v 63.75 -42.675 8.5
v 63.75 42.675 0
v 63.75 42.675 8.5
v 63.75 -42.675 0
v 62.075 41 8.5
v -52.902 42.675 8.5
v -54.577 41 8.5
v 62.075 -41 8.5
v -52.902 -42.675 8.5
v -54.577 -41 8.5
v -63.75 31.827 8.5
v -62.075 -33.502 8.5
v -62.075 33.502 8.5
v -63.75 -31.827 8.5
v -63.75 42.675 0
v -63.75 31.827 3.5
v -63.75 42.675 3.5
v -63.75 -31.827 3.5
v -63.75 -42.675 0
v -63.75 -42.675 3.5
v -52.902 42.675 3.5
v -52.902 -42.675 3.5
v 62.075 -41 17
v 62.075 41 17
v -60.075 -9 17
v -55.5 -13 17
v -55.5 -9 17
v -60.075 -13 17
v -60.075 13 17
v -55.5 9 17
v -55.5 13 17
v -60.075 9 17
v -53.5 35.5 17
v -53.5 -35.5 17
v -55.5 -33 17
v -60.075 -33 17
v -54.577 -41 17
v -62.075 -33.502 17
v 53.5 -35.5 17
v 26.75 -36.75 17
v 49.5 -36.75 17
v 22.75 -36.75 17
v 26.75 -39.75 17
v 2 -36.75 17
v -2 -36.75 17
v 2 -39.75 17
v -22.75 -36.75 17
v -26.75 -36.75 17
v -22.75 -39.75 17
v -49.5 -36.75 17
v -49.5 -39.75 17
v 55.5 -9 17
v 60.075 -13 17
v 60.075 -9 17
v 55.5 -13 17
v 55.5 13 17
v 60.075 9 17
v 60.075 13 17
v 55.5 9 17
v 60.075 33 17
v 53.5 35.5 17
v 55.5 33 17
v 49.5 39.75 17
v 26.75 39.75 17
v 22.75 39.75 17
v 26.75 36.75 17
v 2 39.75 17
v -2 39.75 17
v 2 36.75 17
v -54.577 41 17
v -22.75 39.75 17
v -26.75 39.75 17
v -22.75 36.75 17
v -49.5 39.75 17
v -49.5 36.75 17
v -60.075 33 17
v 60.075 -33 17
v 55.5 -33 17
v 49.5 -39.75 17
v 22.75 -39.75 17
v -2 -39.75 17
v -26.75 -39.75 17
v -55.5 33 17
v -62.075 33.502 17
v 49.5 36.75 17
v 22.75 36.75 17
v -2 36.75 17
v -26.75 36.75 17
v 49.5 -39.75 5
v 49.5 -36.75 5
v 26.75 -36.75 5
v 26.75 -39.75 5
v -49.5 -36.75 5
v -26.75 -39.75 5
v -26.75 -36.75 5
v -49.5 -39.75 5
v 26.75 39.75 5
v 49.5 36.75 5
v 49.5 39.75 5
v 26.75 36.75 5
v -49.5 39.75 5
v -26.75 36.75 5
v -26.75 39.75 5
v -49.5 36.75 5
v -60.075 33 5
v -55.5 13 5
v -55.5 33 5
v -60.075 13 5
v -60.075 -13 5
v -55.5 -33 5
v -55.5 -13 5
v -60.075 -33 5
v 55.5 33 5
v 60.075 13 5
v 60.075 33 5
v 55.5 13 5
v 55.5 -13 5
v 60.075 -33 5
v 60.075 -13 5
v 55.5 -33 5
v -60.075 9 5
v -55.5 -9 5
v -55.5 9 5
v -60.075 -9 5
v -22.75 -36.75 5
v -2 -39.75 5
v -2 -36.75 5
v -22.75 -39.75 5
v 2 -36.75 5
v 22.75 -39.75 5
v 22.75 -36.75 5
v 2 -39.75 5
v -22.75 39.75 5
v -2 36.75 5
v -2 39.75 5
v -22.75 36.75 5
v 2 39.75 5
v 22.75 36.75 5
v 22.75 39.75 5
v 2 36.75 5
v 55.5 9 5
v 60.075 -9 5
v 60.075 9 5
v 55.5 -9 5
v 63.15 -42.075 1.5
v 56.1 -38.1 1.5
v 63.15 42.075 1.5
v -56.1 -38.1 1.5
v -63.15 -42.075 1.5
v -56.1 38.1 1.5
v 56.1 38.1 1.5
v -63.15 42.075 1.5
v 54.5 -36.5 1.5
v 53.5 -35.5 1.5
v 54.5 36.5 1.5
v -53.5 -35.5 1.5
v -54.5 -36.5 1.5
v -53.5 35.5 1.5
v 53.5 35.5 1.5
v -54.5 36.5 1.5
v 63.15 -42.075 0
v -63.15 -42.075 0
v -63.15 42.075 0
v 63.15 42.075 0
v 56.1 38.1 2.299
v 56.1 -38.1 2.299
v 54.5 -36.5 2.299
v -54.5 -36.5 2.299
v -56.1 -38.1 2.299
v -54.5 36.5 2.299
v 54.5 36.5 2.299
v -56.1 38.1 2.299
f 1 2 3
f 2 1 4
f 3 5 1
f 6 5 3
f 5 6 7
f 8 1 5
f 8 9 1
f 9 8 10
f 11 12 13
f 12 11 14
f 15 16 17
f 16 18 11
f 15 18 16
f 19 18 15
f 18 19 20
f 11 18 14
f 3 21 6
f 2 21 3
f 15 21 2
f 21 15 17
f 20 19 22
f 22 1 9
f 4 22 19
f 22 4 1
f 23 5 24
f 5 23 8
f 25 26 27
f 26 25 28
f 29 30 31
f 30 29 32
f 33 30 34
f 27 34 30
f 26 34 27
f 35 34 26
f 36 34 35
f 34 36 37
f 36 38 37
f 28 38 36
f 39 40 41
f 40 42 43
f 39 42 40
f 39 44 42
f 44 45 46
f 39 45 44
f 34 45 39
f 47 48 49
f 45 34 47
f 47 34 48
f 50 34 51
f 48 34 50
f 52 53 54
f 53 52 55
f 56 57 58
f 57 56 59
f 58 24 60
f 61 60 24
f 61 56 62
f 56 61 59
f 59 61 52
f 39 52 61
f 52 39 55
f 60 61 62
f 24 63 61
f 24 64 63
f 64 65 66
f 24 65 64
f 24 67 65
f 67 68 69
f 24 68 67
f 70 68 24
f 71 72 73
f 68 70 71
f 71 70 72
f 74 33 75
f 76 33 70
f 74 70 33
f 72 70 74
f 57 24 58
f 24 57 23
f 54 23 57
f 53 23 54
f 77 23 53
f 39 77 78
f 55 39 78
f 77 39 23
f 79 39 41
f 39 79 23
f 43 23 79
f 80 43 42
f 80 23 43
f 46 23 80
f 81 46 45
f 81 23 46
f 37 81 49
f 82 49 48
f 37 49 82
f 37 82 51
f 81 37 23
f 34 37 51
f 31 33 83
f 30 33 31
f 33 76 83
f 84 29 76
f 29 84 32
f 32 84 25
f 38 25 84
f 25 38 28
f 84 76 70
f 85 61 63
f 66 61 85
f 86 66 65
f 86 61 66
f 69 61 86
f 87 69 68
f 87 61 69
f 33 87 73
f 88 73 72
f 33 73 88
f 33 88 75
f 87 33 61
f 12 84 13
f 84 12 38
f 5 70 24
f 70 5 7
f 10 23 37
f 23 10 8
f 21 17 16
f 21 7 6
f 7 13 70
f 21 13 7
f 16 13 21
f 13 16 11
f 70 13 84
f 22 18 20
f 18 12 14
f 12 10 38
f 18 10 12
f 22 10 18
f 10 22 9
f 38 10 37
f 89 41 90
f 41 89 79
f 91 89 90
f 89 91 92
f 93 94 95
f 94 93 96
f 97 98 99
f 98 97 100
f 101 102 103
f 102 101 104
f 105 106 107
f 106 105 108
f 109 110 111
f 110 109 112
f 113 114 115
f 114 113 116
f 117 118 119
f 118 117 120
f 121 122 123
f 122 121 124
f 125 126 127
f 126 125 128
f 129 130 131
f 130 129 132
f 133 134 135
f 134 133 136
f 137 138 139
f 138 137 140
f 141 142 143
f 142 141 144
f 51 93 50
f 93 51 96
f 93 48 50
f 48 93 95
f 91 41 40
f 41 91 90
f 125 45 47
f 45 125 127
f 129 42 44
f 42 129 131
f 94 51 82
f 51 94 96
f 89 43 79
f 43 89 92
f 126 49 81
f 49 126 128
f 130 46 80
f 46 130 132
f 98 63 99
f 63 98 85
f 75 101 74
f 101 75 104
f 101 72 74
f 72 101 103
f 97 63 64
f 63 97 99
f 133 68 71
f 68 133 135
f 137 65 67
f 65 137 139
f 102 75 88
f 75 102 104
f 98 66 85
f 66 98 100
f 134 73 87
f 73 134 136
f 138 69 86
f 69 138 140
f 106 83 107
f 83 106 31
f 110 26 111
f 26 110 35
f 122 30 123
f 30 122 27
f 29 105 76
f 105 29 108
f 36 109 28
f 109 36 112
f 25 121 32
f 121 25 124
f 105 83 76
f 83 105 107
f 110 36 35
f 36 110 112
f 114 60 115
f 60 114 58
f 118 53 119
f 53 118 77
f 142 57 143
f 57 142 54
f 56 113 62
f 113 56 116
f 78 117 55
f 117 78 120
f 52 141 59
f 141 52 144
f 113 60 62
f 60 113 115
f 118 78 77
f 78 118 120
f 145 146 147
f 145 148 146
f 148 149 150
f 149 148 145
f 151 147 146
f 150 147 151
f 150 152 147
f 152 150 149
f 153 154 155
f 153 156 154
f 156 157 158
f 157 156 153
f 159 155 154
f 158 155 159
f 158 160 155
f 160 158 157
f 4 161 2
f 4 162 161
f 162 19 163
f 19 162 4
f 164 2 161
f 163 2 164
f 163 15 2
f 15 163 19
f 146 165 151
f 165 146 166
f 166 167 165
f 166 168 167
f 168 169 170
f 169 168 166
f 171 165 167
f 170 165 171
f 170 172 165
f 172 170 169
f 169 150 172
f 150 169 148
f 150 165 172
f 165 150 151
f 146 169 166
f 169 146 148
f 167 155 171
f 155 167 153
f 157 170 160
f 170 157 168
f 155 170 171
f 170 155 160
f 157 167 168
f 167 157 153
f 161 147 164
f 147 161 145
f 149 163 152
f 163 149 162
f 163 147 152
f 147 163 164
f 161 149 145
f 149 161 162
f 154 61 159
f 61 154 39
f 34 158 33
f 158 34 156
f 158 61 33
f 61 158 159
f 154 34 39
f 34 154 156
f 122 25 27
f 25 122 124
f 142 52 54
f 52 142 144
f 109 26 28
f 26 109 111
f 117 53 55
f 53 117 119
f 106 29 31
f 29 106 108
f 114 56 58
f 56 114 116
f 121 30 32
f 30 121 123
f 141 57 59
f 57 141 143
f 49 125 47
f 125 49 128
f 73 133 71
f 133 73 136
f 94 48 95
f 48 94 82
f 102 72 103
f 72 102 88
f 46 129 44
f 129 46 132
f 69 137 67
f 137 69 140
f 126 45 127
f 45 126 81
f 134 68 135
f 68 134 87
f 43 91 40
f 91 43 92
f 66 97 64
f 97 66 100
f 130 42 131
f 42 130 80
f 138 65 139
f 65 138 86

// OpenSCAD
// Generated by SolidPython 1.1.3 on 2025-09-12 14:58:33


union() {
	difference() {
		union() {
			translate(v = [0, 22.0000000000, 0]) {
				translate(v = [0, -33.0000000000, 11.0000000000]) {
					cube(center = true, size = [124.1500000000, 4, 12]);
				}
			}
			translate(v = [0, 44.0000000000, 0]) {
				translate(v = [0, -33.0000000000, 11.0000000000]) {
					cube(center = true, size = [124.1500000000, 4, 12]);
				}
			}
			translate(v = [24.7500000000, 0, 0]) {
				translate(v = [-49.5000000000, 0, 11.0000000000]) {
					cube(center = true, size = [4, 82, 12]);
				}
			}
			translate(v = [49.5000000000, 0, 0]) {
				translate(v = [-49.5000000000, 0, 11.0000000000]) {
					cube(center = true, size = [4, 82, 12]);
				}
			}
			translate(v = [74.2500000000, 0, 0]) {
				translate(v = [-49.5000000000, 0, 11.0000000000]) {
					cube(center = true, size = [4, 82, 12]);
				}
			}
			difference() {
				difference() {
					difference() {
						difference() {
							difference() {
								union() {
									difference() {
										union() {
											translate(v = [0, 0, 4.2500000000]) {
												cube(center = true, size = [127.5000000000, 85.3500000000, 8.5000000000]);
											}
											translate(v = [0, 0, 12.7500000000]) {
												cube(center = true, size = [124.1500000000, 82, 8.5000000000]);
											}
										}
										translate(v = [0, 0, 0.7500000000]) {
											cube(center = true, size = [127.5000000000, 85.3500000000, 1.5000000000]);
										}
									}
									intersection() {
										difference() {
											translate(v = [0, 0, 0.7500000000]) {
												cube(center = true, size = [127.5000000000, 85.3500000000, 1.5000000000]);
											}
											translate(v = [0, 0, 0.7500000000]) {
												cube(center = true, size = [126.3000000000, 84.1500000000, 1.5000000000]);
											}
										}
										union() {
											translate(v = [-63.7500000000, 42.6750000000, 0]) {
												translate(v = [0, 0, 0.7500000000]) {
													cube(center = true, size = [127.5000000000, 85.3500000000, 1.5000000000]);
												}
											}
											translate(v = [63.7500000000, 42.6750000000, 0]) {
												translate(v = [0, 0, 0.7500000000]) {
													cube(center = true, size = [127.5000000000, 85.3500000000, 1.5000000000]);
												}
											}
											translate(v = [-63.7500000000, -42.6750000000, 0]) {
												translate(v = [0, 0, 0.7500000000]) {
													cube(center = true, size = [127.5000000000, 85.3500000000, 1.5000000000]);
												}
											}
											translate(v = [63.7500000000, -42.6750000000, 0]) {
												translate(v = [0, 0, 0.7500000000]) {
													cube(center = true, size = [127.5000000000, 85.3500000000, 1.5000000000]);
												}
											}
										}
									}
								}
								union() {
									translate(v = [-63.7510000000, 42.6760000000, 3.5000000000]) {
										translate(v = [0, -10.8500000000, 0]) {
											linear_extrude(height = 13.5000000000) {
												polygon(points = [[0, 0], [0, 10.8500000000], [0, 10.8500000000], [0, 10.8500000000], [10.8500000000, 10.8500000000], [10.8500000000, 10.8500000000]]);
											}
										}
									}
									translate(v = [-63.7510000000, -42.6760000000, 3.5000000000]) {
										translate(v = [10.8500000000, 0, 0]) {
											rotate(a = 90) {
												linear_extrude(height = 13.5000000000) {
													polygon(points = [[0, 0], [0, 10.8500000000], [0, 10.8500000000], [0, 10.8500000000], [10.8500000000, 10.8500000000], [10.8500000000, 10.8500000000]]);
												}
											}
										}
									}
								}
							}
							translate(v = [0, 0, 8.5000000000]) {
								cube(center = true, size = [107, 71, 17.0000000000]);
							}
						}
						translate(v = [0, 0, 1.8990000000]) {
							difference() {
								cube(center = true, size = [112.2000000000, 76.2000000000, 0.8000000000]);
								cube(center = true, size = [109, 73, 0.8000000000]);
							}
						}
					}
					union() {
						translate(v = [0, -38.2500000000, 0]) {
							translate(v = [0, 0, 11.0000000000]) {
								cube(center = true, size = [99, 3.0000000000, 12]);
							}
						}
						translate(v = [0, 38.2500000000, 0]) {
							translate(v = [0, 0, 11.0000000000]) {
								cube(center = true, size = [99, 3.0000000000, 12]);
							}
						}
						translate(v = [-57.7875000000, 0, 0]) {
							translate(v = [0, 0, 11.0000000000]) {
								cube(center = true, size = [4.5750000000, 66, 12]);
							}
						}
						translate(v = [57.7875000000, 0, 0]) {
							translate(v = [0, 0, 11.0000000000]) {
								cube(center = true, size = [4.5750000000, 66, 12]);
							}
						}
					}
				}
				union() {
					translate(v = [0, 0, 17.0000000000]) {
						cube(center = true, size = [115.5750000000, 66, 0]);
					}
					translate(v = [0, 0, 17.0000000000]) {
						cube(center = true, size = [99, 76.5000000000, 0]);
					}
				}
			}
		}
		translate(v = [0, 0, 8.5000000000]) {
			cube(center = true, size = [107, 71, 17.0000000000]);
		}
	}
	translate(v = [0, 0, 17.0000000000]) {
		linear_extrude(center = true, height = 127.5000000000) {
			rotate(a = [0, 0, 90]) {
				linear_extrude(center = true, height = 85.3500000000) {
					polygon(points = [[0, 0], [2.0000000000000004, 0], [0, 0]]);
				}
			}
		}
	}
}
/***********************************************
*********      SolidPython code:      **********
************************************************
 
import solid
import numpy as np
import os.path as osp
import os
import math

"""
96-Well Plate with Reservoirs Generator
This script generates a 3D model of a 96-well plate with configurable reservoirs.
It uses solid-python to generate OpenSCAD code for 3D printing.
"""

def get_default_config():
    """
    Returns a dictionary containing default configuration parameters.
    
    Returns:
        dict: Default configuration parameters for the plate model
    """
    version = "print_hips_2"
    base_name = "96_well_plate_reservoirs_"+version
    config = {
        # Version and naming
        "version": version,
        "base_name": base_name,
        "base_path": osp.join("./plates/",base_name),
        
        # Basic plate dimensions
        "plate_size_outer": [127.5, 85.35],
        "plate_size_inner": [124.15, 82],
        "plate_height_outer": 8.5,
        "plate_height_inner": 8.5,
        "plate_under_depth": 1.5,
        "skirt_thickness": 1.2,
        
        # Corner dimensions
        "corner_x": 7.5,
        "corner_y": 7.5,
        
        # Grid configuration
        "grid_size": [1, 1],
        
        # Device dimensions
        "device_dims": [107, 71],
        
        # Reservoir configuration
        "reservoir_x_tol": 8,
        "reservoir_y_tol": 5,
        "reservoir_depth": 12,
        "reservoir_number_x": 3,
        "reservoir_number_y": 4,
        "reservoir_wall_thickness": 4,
        "lower_wall_height": 0,
        
        # Release holes configuration
        "release_holes": False,
        "release_radius": 2.5,
        
        # Groove configuration
        "groove_width": 1.6,  # Width of the groove (gw)
        "groove_depth": .8,  # Depth of the groove (gd)
        "gap_device": 1,    # Distance from device slot to groove
        
        # Negative chamfer configuration
        "corner_chamfer_depth": 5,
        "use_negative_chamfer": False,    # Toggle for negative chamfer
        "negative_chamfer_angle": 45,     # Angle in degrees (typically 45)
        "negative_chamfer_height": 2.0,   # Height of the chamfer
        "negative_chamfer_face": "top" # Which face to apply it to: "bottom", "top", "left", or "right"
    }
    
    # Derived values
    config["plate_height"] = config["plate_height_inner"] + config["plate_height_outer"]
    config["skirt_hole_dims"] = config["plate_size_outer"].copy()
    
    # Calculate reservoir dimensions based on device dimensions
    config["reservoir_dims_x"] = [
        config["device_dims"][0] - config["reservoir_x_tol"],
        (config["plate_size_inner"][1] - config["device_dims"][1] - config["reservoir_y_tol"]) / 2.0
    ]
    
    config["reservoir_dims_y"] = [
        (config["plate_size_inner"][0] - config["device_dims"][0] - config["reservoir_x_tol"]) / 2.0,
        config["device_dims"][1] - config["reservoir_y_tol"]
    ]
    
    return config

def save_model(model, base_path, base_name):
    """
    Saves the 3D model to an OpenSCAD file.
    
    Args:
        model: The solid-python 3D model
        base_path (str): Directory path to save the model
        base_name (str): Filename base for the model
    """
    if not osp.exists(base_path):
        os.makedirs(base_path)
    scad_path = osp.join(base_path, base_name + ".scad")
    solid.scad_render_to_file(model, osp.join(scad_path))

def center_unit_array(model, dims, grid_size):
    """
    Centers a unit array in the given grid.
    
    Args:
        model: The solid-python 3D model
        dims (list): Dimensions of the unit
        grid_size (list): Grid size [x, y]
        
    Returns:
        The centered model
    """
    model = solid.translate([dims[0]/2.0, dims[1]/2.0, 0])(model)
    model = solid.translate([
        -dims[0]*(grid_size[0]/2.0),
        -dims[1]*(grid_size[1]/2.0), 0
    ])(model)
    return model

def corners_from_x_y(x, y):
    """
    Generate corner coordinates from x and y dimensions.
    
    Args:
        x (float): X dimension
        y (float): Y dimension
        
    Returns:
        list: List of corner coordinates
    """
    return [
        [-x/2.0, y/2.0],
        [x/2.0, y/2.0],
        [-x/2.0, -y/2.0],
        [x/2.0, -y/2.0]
    ]

def create_plate_base(config):
    """
    Creates the base plate structure.
    
    Args:
        config (dict): Configuration parameters
        
    Returns:
        The base plate model
    """
    plate_size_outer = config["plate_size_outer"]
    plate_size_inner = config["plate_size_inner"]
    plate_height_inner = config["plate_height_inner"]
    plate_height_diff = config["plate_height"] - plate_height_inner
    
    # Create outer plate as base
    plate = solid.cube((*plate_size_outer, plate_height_diff), center=True)
    plate = solid.translate([0, 0, plate_height_diff/2.0])(plate)
    
    # Create inner plate on top
    plate_inner = solid.cube((*plate_size_inner, plate_height_inner), center=True)
    plate_inner = solid.translate([0, 0, plate_height_inner/2.0 + plate_height_diff])(plate_inner)
    
    # Combine plates
    plate = solid.union()(plate, plate_inner)
    
    return plate

def create_plate_skirt(config):
    """
    Creates the skirt for the plate.
    
    Args:
        config (dict): Configuration parameters
        
    Returns:
        The plate skirt model
    """
    plate_size_outer = config["plate_size_outer"]
    plate_under_depth = config["plate_under_depth"]
    skirt_thickness = config["skirt_thickness"]
    skirt_hole_dims = config["skirt_hole_dims"]
    
    # Create removal shapes for skirt
    plate_under_remove_out = solid.cube((*plate_size_outer, plate_under_depth), center=True)
    plate_under_remove_out = solid.translate([0, 0, plate_under_depth/2.0])(plate_under_remove_out)
    
    plate_under_remove_in = solid.cube((
        plate_size_outer[0] - skirt_thickness, 
        plate_size_outer[1] - skirt_thickness, 
        plate_under_depth
    ), center=True)
    plate_under_remove_in = solid.translate([0, 0, plate_under_depth/2.0])(plate_under_remove_in)
    
    plate_under_remove = solid.difference()(plate_under_remove_out, plate_under_remove_in)
    
    # Create corner removal
    plate_under_remove_corner = solid.cube((*skirt_hole_dims, plate_under_depth), center=True)
    plate_under_remove_corner = solid.translate([0, 0, plate_under_depth/2.0])(plate_under_remove_corner)
    
    plate_corners_pos = corners_from_x_y(*plate_size_outer)
    plate_under_remove_corners = []
    
    for corner_pos in plate_corners_pos:
        temp_corner = solid.translate([*corner_pos, 0])(plate_under_remove_corner)
        plate_under_remove_corners.append(temp_corner)
    
    corners_remove = solid.union()(*plate_under_remove_corners)
    skirt = solid.intersection()(plate_under_remove, corners_remove)
    
    return skirt, plate_under_remove_out

def create_corners(config):
    """
    Creates the corners for the plate.
    
    Args:
        config (dict): Configuration parameters
        
    Returns:
        The corners model
    """
    plate_size_inner = config["plate_size_inner"]
    plate_size_outer = config["plate_size_outer"]
    plate_height_inner = config["plate_height_inner"]
    plate_height_diff = config["plate_height"] - plate_height_inner
    xtra_x = (plate_size_outer[0]-plate_size_inner[0])/2.0
    xtra_y = (plate_size_outer[1]-plate_size_inner[1])/2.0
    #corner_x = config["corner_x"]+10
    #corner_y = config["corner_y"]+xtra_y
    corner_x = config["corner_x"]+xtra_x*2
    corner_y = config["corner_y"]+xtra_y*2
    corner_chamfer_depth = config["corner_chamfer_depth"]
    
    # Define corner points
    corner_thickness = 20
    corner_points = [
        [0, 0, 0],
        [0, corner_y, corner_thickness],
        [0, corner_y, 0],
        [0, corner_y, corner_thickness],
        [corner_x, corner_y, corner_thickness],
        [corner_x, corner_y, 0]
    ]
    
    # Create corner polygon
    corner = solid.polygon(points=corner_points)()
    corner = solid.linear_extrude(height=plate_height_inner+corner_chamfer_depth)(corner)
    
    # Create top-left corner
    corner_top_left = corner
    corner_top_left = solid.translate([0, -corner_y, 0])(corner_top_left)
    corner_top_left = solid.translate([
        -plate_size_outer[0]/2.0-0.001, 
        plate_size_outer[1]/2.0+0.001, 
        plate_height_diff - corner_chamfer_depth
    ])(corner_top_left)
    #corner_top_left = solid.translate([0, -corner_y, 0])(corner_top_left)
    #corner_top_left = solid.translate([
    #    -plate_size_inner[0]/2.0, 
    #    plate_size_inner[1]/2.0, 
    #    plate_height_diff - corner_chamfer_depth
    #])(corner_top_left)
    
    # Create bottom-left corner
    #corner_bottom_left = solid.rotate(90)(corner)
    #corner_bottom_left = solid.translate([corner_x, 0, 0])(corner_bottom_left)
    #corner_bottom_left = solid.translate([
    #    -plate_size_inner[0]/2.0, 
    #    -plate_size_inner[1]/2.0, 
    #    plate_height_diff
    #])(corner_bottom_left)
    corner_bottom_left = solid.rotate(90)(corner)
    corner_bottom_left = solid.translate([corner_x, 0, 0])(corner_bottom_left)
    corner_bottom_left = solid.translate([
        -plate_size_outer[0]/2.0-0.001, 
        -plate_size_outer[1]/2.0-0.001, 
        plate_height_diff - corner_chamfer_depth
    ])(corner_bottom_left)
    
    # Combine corners
    corners = solid.union()(corner_top_left, corner_bottom_left)
    
    return corners

def create_device_slot(config):
    """
    Creates the device slot for the plate.
    
    Args:
        config (dict): Configuration parameters
        
    Returns:
        The device slot model
    """
    device_dims = config["device_dims"]
    plate_height = config["plate_height"]
    
    device_slot = solid.cube((*device_dims, plate_height), center=True)
    device_slot = solid.translate([0, 0, plate_height/2.0])(device_slot)
    
    return device_slot

def create_device_groove(config):
    """
    Creates a groove around the device slot.
    
    Args:
        config (dict): Configuration parameters
        
    Returns:
        The groove model to be subtracted from the plate
    """
    device_dims = config["device_dims"]
    plate_height = config["plate_height"]
    groove_width = config["groove_width"]
    groove_depth = config["groove_depth"]
    gap_device = config["gap_device"]
    plate_under_depth = config["plate_under_depth"]
    
    # Calculate inner and outer dimensions for the groove
    inner_dims = [
        device_dims[0] + 2 * gap_device,
        device_dims[1] + 2 * gap_device,
        groove_depth
    ]
    
    outer_dims = [
        inner_dims[0] + 2 * groove_width,
        inner_dims[1] + 2 * groove_width,
        groove_depth
    ]
    
    # Create outer cube
    outer_cube = solid.cube(outer_dims, center=True)
    
    # Create inner cube (to be subtracted)
    inner_cube = solid.cube(inner_dims, center=True)
    
    # Create groove by subtracting inner from outer
    groove = solid.difference()(outer_cube, inner_cube)
    
    # Position the groove at the correct height
    # The top of the groove should be at the plate height
    #groove = solid.translate([0, 0, plate_height - groove_depth/2.0])(groove)
    groove = solid.translate([0, 0, plate_under_depth + groove_depth/2.0 -0.001])(groove)
    
    return groove

def create_reservoirs(config):
    """
    Creates the reservoirs for the plate.
    
    Args:
        config (dict): Configuration parameters
        
    Returns:
        The reservoirs model and lower wall model
    """
    plate_size_inner = config["plate_size_inner"]
    device_dims = config["device_dims"]
    reservoir_dims_x = config["reservoir_dims_x"]
    reservoir_dims_y = config["reservoir_dims_y"]
    reservoir_depth = config["reservoir_depth"]
    plate_height = config["plate_height"]
    lower_wall_height = config["lower_wall_height"]
    
    # Create X and Y reservoirs
    reservoir_x = solid.cube((*reservoir_dims_x, reservoir_depth), center=True)
    reservoir_x = solid.translate([0, 0, plate_height - reservoir_depth/2.0])(reservoir_x)
    
    reservoir_y = solid.cube((*reservoir_dims_y, reservoir_depth), center=True)
    reservoir_y = solid.translate([0, 0, plate_height - reservoir_depth/2.0])(reservoir_y)
    
    # Calculate positions
    plate_top_x_thickness = (plate_size_inner[0] - device_dims[0]) / 2.0
    x_pos_reservoir = plate_size_inner[0] / 2.0 - plate_top_x_thickness / 2.0
    
    plate_top_y_thickness = (plate_size_inner[1] - device_dims[1]) / 2.0
    y_pos_reservoir = plate_size_inner[1] / 2.0 - plate_top_y_thickness / 2.0
    
    # Position reservoirs
    reservoir_x_top = solid.translate([0, y_pos_reservoir, 0])(reservoir_x)
    reservoir_x_bottom = solid.translate([0, -y_pos_reservoir, 0])(reservoir_x)
    reservoir_y_left = solid.translate([x_pos_reservoir, 0, 0])(reservoir_y)
    reservoir_y_right = solid.translate([-x_pos_reservoir, 0, 0])(reservoir_y)
    
    # Combine reservoirs
    reservoirs = solid.union()(
        reservoir_x_bottom, 
        reservoir_x_top, 
        reservoir_y_right, 
        reservoir_y_left
    )
    
    # Create lower wall
    reservoir_lower_wall_x = solid.cube((
        reservoir_dims_x[0], 
        y_pos_reservoir * 2, 
        lower_wall_height
    ), center=True)
    reservoir_lower_wall_x = solid.translate([
        0, 0, plate_height - lower_wall_height / 2.0
    ])(reservoir_lower_wall_x)
    
    reservoir_lower_wall_y = solid.cube((
        x_pos_reservoir * 2, 
        reservoir_dims_y[1], 
        lower_wall_height
    ), center=True)
    reservoir_lower_wall_y = solid.translate([
        0, 0, plate_height - lower_wall_height / 2.0
    ])(reservoir_lower_wall_y)
    
    reservoir_lower_wall = solid.union()(
        reservoir_lower_wall_y, 
        reservoir_lower_wall_x
    )
    
    return reservoirs, reservoir_lower_wall, x_pos_reservoir, y_pos_reservoir

def create_reservoir_walls(config, x_pos_reservoir, y_pos_reservoir):
    """
    Creates the walls for the reservoirs.
    
    Args:
        config (dict): Configuration parameters
        x_pos_reservoir (float): X position of reservoir
        y_pos_reservoir (float): Y position of reservoir
        
    Returns:
        The reservoir walls models
    """
    plate_size_inner = config["plate_size_inner"]
    reservoir_dims_x = config["reservoir_dims_x"]
    reservoir_dims_y = config["reservoir_dims_y"]
    reservoir_wall_thickness = config["reservoir_wall_thickness"]
    reservoir_depth = config["reservoir_depth"]
    reservoir_number_x = config["reservoir_number_x"]
    reservoir_number_y = config["reservoir_number_y"]
    plate_height = config["plate_height"]
    
    # Create X wall
    reservoir_x_wall = solid.cube((
        plate_size_inner[0], 
        reservoir_wall_thickness, 
        reservoir_depth
    ), center=True)
    reservoir_x_wall = solid.translate([
        0, 
        -reservoir_dims_y[1] / 2.0, 
        plate_height - reservoir_depth / 2.0
    ])(reservoir_x_wall)
    
    # Create Y wall
    reservoir_y_wall = solid.cube((
        reservoir_wall_thickness, 
        plate_size_inner[1], 
        reservoir_depth
    ), center=True)
    reservoir_y_wall = solid.translate([
        -reservoir_dims_x[0] / 2.0, 
        0, 
        plate_height - reservoir_depth / 2.0
    ])(reservoir_y_wall)
    
    # Calculate spacings
    spacing_x = reservoir_dims_y[1] / reservoir_number_x
    spacing_y = reservoir_dims_x[0] / reservoir_number_y
    
    # Create multiple X walls
    reservoir_x_walls = []
    for i in range(reservoir_number_x - 1):
        reservoir_x_walls.append(
            solid.translate([0, spacing_x * (i + 1), 0])(reservoir_x_wall)
        )
    
    # Create multiple Y walls
    reservoir_y_walls = []
    for i in range(reservoir_number_y - 1):
        reservoir_y_walls.append(
            solid.translate([spacing_y * (i + 1), 0, 0])(reservoir_y_wall)
        )
    
    return reservoir_x_walls, reservoir_y_walls, spacing_x, spacing_y

def create_release_holes(config, spacing_x, spacing_y):
    """
    Creates release holes for the plate if enabled.
    
    Args:
        config (dict): Configuration parameters
        spacing_x (float): X spacing between holes
        spacing_y (float): Y spacing between holes
        
    Returns:
        The release holes model or None if disabled
    """
    if not config["release_holes"]:
        return None
        
    plate_size_inner = config["plate_size_inner"]
    reservoir_number_x = config["reservoir_number_x"]
    reservoir_number_y = config["reservoir_number_y"]
    release_radius = config["release_radius"]
    reservoir_dims_x = config["reservoir_dims_x"]
    reservoir_dims_y = config["reservoir_dims_y"]
    plate_height = config["plate_height"]
    
    # Create X release hole
    release_x = solid.cylinder(r=release_radius, h=plate_size_inner[0], segments=64, center=True)
    release_x = solid.rotate([0, 90, 0])(release_x)
    release_x = solid.translate([0, -spacing_x / 2.0, 0])(release_x)
    
    # Create Y release hole
    release_y = solid.cylinder(r=release_radius, h=plate_size_inner[1], segments=64, center=True)
    release_y = solid.rotate([90, 0, 0])(release_y)
    release_y = solid.translate([-spacing_y / 2.0, 0, 0])(release_y)
    
    # Position release holes
    release_holes = []
    release_x = solid.translate([0, -reservoir_dims_y[1] / 2.0, 0])(release_x)
    
    for i in range(reservoir_number_x):
        release_holes.append(solid.translate([0, spacing_x * (i + 1), 0])(release_x))
    
    release_y = solid.translate([-reservoir_dims_x[0] / 2.0, 0, 0])(release_y)
    
    for i in range(reservoir_number_y):
        release_holes.append(solid.translate([spacing_y * (i + 1), 0, 0])(release_y))
    
    # Combine and position release holes
    release_holes = solid.union()(*release_holes)
    release_holes = solid.translate([0, 0, plate_height])(release_holes)
    
    return release_holes

def create_negative_chamfer(config):
    """
    Creates a negative chamfer (angled addition) to a surface.
    This function creates a solid that will be unioned with the main plate.
    
    Args:
        config (dict): Configuration parameters
        
    Returns:
        The negative chamfer solid model
    """
    if not config["use_negative_chamfer"]:
        return None
        
    plate_size_outer = config["plate_size_outer"]
    plate_height = config["plate_height"]
    chamfer_angle = config["negative_chamfer_angle"]
    chamfer_height = config["negative_chamfer_height"]
    face = config["negative_chamfer_face"]
    
    # Calculate the width of the chamfer based on the angle and height
    # For a 45 degree angle, width = height
    chamfer_width = chamfer_height / np.tan(np.radians(chamfer_angle))
    
    # Create points for the chamfer profile based on which face it's applied to
    if face == "bottom":
        # For the bottom face (green surface in the image)
        # Create a polygon with these points: origin, width outward, height downward
        points = [
            [0, 0, 0],                    # Origin point
            [chamfer_width, 0, 0],        # Width outward
            [0, 0, -chamfer_height]       # Height downward
        ]
        
        # Create a 2D polygon from these points
        polygon = solid.polygon(points=points)()
        
        # Extrude the polygon along the Y axis to create a 3D solid
        chamfer_profile = solid.linear_extrude(height=plate_size_outer[1], center=True)(polygon)
        
        # Create another extrusion along the X axis
        chamfer_profile = solid.rotate([0, 0, 90])(chamfer_profile)
        full_chamfer = solid.linear_extrude(height=plate_size_outer[0], center=True)(chamfer_profile)
        
        # Position the chamfer at the bottom of the plate
        full_chamfer = solid.translate([0, 0, 0])(full_chamfer)
        
    elif face == "top":
        # Implementation for top face
        # Similar process but different points and positioning
        points = [
            [0, 0, 0],                    
            [chamfer_width, 0, 0],        
            [0, 0, chamfer_height]        
        ]
        polygon = solid.polygon(points=points)()
        chamfer_profile = solid.linear_extrude(height=plate_size_outer[1], center=True)(polygon)
        chamfer_profile = solid.rotate([0, 0, 90])(chamfer_profile)
        full_chamfer = solid.linear_extrude(height=plate_size_outer[0], center=True)(chamfer_profile)
        full_chamfer = solid.translate([0, 0, plate_height])(full_chamfer)
        
    elif face == "left" or face == "right":
        # Implementation for side faces
        # Similar process but different orientation
        points = [
            [0, 0, 0],
            [0, chamfer_width, 0],
            [0, 0, chamfer_height]
        ]
        polygon = solid.polygon(points=points)()
        chamfer_profile = solid.linear_extrude(height=plate_size_outer[0], center=True)(polygon)
        full_chamfer = solid.rotate([90, 0, 0])(chamfer_profile)
        full_chamfer = solid.linear_extrude(height=plate_size_outer[1], center=True)(full_chamfer)
        
        # Position based on which side
        if face == "left":
            full_chamfer = solid.translate([-plate_size_outer[0]/2, 0, 0])(full_chamfer)
        else:  # right
            full_chamfer = solid.translate([plate_size_outer[0]/2, 0, 0])(full_chamfer)
    
    return full_chamfer

def create_96_well_plate(config=None):
    """
    Creates a complete 96-well plate with reservoirs.
    
    Args:
        config (dict, optional): Configuration parameters. If None, default config is used.
        
    Returns:
        The complete plate model
    """
    if config is None:
        config = get_default_config()
    
    # Create base plate
    plate = create_plate_base(config)
    
    # Create skirt
    skirt, plate_under_remove_out = create_plate_skirt(config)
    plate = solid.difference()(plate, plate_under_remove_out)
    plate = solid.union()(plate, skirt)
    
    # Create corners
    corners = create_corners(config)
    plate = solid.difference()(plate, corners)
    
    # Create device slot
    device_slot = create_device_slot(config)
    plate = solid.difference()(plate, device_slot)
    
    # Create device groove around the slot
    device_groove = create_device_groove(config)
    plate = solid.difference()(plate, device_groove)
    
    # Create reservoirs
    reservoirs, reservoir_lower_wall, x_pos_reservoir, y_pos_reservoir = create_reservoirs(config)
    plate = solid.difference()(plate, reservoirs)
    plate = solid.difference()(plate, reservoir_lower_wall)
    
    # Create reservoir walls
    reservoir_x_walls, reservoir_y_walls, spacing_x, spacing_y = create_reservoir_walls(
        config, x_pos_reservoir, y_pos_reservoir
    )
    
    # Create release holes if enabled
    release_holes = create_release_holes(config, spacing_x, spacing_y)
    if release_holes is not None:
        plate = solid.difference()(plate, release_holes)
    
    # Combine all walls with plate
    plate = solid.union()(
        *reservoir_x_walls,
        *reservoir_y_walls,
        plate
    )
    
    # Final device slot cut
    plate = solid.difference()(plate, device_slot)
    
    # Add negative chamfer if enabled
    negative_chamfer = create_negative_chamfer(config)
    if negative_chamfer is not None:
        plate = solid.union()(plate, negative_chamfer)
    
    return plate

def main():
    """
    Main function to generate and save the plate model.
    """
    # Load default configuration
    config = get_default_config()
    config["use_negative_chamfer"] = True
    
    # Create the plate
    plate = create_96_well_plate(config)
    
    # Save the model
    save_model(plate, config["base_path"], config["base_name"])

if __name__ == "__main__":
    # Import optional modules only when executing as main script
    try:
        chamfer_extrude = solid.import_scad("./chamfer_extrude.scad")
        chamfer_extrude = chamfer_extrude.chamfer_extrude
    except Exception as e:
        print(f"Warning: Could not import chamfer_extrude: {e}")
    
    main()
 
 
************************************************/
